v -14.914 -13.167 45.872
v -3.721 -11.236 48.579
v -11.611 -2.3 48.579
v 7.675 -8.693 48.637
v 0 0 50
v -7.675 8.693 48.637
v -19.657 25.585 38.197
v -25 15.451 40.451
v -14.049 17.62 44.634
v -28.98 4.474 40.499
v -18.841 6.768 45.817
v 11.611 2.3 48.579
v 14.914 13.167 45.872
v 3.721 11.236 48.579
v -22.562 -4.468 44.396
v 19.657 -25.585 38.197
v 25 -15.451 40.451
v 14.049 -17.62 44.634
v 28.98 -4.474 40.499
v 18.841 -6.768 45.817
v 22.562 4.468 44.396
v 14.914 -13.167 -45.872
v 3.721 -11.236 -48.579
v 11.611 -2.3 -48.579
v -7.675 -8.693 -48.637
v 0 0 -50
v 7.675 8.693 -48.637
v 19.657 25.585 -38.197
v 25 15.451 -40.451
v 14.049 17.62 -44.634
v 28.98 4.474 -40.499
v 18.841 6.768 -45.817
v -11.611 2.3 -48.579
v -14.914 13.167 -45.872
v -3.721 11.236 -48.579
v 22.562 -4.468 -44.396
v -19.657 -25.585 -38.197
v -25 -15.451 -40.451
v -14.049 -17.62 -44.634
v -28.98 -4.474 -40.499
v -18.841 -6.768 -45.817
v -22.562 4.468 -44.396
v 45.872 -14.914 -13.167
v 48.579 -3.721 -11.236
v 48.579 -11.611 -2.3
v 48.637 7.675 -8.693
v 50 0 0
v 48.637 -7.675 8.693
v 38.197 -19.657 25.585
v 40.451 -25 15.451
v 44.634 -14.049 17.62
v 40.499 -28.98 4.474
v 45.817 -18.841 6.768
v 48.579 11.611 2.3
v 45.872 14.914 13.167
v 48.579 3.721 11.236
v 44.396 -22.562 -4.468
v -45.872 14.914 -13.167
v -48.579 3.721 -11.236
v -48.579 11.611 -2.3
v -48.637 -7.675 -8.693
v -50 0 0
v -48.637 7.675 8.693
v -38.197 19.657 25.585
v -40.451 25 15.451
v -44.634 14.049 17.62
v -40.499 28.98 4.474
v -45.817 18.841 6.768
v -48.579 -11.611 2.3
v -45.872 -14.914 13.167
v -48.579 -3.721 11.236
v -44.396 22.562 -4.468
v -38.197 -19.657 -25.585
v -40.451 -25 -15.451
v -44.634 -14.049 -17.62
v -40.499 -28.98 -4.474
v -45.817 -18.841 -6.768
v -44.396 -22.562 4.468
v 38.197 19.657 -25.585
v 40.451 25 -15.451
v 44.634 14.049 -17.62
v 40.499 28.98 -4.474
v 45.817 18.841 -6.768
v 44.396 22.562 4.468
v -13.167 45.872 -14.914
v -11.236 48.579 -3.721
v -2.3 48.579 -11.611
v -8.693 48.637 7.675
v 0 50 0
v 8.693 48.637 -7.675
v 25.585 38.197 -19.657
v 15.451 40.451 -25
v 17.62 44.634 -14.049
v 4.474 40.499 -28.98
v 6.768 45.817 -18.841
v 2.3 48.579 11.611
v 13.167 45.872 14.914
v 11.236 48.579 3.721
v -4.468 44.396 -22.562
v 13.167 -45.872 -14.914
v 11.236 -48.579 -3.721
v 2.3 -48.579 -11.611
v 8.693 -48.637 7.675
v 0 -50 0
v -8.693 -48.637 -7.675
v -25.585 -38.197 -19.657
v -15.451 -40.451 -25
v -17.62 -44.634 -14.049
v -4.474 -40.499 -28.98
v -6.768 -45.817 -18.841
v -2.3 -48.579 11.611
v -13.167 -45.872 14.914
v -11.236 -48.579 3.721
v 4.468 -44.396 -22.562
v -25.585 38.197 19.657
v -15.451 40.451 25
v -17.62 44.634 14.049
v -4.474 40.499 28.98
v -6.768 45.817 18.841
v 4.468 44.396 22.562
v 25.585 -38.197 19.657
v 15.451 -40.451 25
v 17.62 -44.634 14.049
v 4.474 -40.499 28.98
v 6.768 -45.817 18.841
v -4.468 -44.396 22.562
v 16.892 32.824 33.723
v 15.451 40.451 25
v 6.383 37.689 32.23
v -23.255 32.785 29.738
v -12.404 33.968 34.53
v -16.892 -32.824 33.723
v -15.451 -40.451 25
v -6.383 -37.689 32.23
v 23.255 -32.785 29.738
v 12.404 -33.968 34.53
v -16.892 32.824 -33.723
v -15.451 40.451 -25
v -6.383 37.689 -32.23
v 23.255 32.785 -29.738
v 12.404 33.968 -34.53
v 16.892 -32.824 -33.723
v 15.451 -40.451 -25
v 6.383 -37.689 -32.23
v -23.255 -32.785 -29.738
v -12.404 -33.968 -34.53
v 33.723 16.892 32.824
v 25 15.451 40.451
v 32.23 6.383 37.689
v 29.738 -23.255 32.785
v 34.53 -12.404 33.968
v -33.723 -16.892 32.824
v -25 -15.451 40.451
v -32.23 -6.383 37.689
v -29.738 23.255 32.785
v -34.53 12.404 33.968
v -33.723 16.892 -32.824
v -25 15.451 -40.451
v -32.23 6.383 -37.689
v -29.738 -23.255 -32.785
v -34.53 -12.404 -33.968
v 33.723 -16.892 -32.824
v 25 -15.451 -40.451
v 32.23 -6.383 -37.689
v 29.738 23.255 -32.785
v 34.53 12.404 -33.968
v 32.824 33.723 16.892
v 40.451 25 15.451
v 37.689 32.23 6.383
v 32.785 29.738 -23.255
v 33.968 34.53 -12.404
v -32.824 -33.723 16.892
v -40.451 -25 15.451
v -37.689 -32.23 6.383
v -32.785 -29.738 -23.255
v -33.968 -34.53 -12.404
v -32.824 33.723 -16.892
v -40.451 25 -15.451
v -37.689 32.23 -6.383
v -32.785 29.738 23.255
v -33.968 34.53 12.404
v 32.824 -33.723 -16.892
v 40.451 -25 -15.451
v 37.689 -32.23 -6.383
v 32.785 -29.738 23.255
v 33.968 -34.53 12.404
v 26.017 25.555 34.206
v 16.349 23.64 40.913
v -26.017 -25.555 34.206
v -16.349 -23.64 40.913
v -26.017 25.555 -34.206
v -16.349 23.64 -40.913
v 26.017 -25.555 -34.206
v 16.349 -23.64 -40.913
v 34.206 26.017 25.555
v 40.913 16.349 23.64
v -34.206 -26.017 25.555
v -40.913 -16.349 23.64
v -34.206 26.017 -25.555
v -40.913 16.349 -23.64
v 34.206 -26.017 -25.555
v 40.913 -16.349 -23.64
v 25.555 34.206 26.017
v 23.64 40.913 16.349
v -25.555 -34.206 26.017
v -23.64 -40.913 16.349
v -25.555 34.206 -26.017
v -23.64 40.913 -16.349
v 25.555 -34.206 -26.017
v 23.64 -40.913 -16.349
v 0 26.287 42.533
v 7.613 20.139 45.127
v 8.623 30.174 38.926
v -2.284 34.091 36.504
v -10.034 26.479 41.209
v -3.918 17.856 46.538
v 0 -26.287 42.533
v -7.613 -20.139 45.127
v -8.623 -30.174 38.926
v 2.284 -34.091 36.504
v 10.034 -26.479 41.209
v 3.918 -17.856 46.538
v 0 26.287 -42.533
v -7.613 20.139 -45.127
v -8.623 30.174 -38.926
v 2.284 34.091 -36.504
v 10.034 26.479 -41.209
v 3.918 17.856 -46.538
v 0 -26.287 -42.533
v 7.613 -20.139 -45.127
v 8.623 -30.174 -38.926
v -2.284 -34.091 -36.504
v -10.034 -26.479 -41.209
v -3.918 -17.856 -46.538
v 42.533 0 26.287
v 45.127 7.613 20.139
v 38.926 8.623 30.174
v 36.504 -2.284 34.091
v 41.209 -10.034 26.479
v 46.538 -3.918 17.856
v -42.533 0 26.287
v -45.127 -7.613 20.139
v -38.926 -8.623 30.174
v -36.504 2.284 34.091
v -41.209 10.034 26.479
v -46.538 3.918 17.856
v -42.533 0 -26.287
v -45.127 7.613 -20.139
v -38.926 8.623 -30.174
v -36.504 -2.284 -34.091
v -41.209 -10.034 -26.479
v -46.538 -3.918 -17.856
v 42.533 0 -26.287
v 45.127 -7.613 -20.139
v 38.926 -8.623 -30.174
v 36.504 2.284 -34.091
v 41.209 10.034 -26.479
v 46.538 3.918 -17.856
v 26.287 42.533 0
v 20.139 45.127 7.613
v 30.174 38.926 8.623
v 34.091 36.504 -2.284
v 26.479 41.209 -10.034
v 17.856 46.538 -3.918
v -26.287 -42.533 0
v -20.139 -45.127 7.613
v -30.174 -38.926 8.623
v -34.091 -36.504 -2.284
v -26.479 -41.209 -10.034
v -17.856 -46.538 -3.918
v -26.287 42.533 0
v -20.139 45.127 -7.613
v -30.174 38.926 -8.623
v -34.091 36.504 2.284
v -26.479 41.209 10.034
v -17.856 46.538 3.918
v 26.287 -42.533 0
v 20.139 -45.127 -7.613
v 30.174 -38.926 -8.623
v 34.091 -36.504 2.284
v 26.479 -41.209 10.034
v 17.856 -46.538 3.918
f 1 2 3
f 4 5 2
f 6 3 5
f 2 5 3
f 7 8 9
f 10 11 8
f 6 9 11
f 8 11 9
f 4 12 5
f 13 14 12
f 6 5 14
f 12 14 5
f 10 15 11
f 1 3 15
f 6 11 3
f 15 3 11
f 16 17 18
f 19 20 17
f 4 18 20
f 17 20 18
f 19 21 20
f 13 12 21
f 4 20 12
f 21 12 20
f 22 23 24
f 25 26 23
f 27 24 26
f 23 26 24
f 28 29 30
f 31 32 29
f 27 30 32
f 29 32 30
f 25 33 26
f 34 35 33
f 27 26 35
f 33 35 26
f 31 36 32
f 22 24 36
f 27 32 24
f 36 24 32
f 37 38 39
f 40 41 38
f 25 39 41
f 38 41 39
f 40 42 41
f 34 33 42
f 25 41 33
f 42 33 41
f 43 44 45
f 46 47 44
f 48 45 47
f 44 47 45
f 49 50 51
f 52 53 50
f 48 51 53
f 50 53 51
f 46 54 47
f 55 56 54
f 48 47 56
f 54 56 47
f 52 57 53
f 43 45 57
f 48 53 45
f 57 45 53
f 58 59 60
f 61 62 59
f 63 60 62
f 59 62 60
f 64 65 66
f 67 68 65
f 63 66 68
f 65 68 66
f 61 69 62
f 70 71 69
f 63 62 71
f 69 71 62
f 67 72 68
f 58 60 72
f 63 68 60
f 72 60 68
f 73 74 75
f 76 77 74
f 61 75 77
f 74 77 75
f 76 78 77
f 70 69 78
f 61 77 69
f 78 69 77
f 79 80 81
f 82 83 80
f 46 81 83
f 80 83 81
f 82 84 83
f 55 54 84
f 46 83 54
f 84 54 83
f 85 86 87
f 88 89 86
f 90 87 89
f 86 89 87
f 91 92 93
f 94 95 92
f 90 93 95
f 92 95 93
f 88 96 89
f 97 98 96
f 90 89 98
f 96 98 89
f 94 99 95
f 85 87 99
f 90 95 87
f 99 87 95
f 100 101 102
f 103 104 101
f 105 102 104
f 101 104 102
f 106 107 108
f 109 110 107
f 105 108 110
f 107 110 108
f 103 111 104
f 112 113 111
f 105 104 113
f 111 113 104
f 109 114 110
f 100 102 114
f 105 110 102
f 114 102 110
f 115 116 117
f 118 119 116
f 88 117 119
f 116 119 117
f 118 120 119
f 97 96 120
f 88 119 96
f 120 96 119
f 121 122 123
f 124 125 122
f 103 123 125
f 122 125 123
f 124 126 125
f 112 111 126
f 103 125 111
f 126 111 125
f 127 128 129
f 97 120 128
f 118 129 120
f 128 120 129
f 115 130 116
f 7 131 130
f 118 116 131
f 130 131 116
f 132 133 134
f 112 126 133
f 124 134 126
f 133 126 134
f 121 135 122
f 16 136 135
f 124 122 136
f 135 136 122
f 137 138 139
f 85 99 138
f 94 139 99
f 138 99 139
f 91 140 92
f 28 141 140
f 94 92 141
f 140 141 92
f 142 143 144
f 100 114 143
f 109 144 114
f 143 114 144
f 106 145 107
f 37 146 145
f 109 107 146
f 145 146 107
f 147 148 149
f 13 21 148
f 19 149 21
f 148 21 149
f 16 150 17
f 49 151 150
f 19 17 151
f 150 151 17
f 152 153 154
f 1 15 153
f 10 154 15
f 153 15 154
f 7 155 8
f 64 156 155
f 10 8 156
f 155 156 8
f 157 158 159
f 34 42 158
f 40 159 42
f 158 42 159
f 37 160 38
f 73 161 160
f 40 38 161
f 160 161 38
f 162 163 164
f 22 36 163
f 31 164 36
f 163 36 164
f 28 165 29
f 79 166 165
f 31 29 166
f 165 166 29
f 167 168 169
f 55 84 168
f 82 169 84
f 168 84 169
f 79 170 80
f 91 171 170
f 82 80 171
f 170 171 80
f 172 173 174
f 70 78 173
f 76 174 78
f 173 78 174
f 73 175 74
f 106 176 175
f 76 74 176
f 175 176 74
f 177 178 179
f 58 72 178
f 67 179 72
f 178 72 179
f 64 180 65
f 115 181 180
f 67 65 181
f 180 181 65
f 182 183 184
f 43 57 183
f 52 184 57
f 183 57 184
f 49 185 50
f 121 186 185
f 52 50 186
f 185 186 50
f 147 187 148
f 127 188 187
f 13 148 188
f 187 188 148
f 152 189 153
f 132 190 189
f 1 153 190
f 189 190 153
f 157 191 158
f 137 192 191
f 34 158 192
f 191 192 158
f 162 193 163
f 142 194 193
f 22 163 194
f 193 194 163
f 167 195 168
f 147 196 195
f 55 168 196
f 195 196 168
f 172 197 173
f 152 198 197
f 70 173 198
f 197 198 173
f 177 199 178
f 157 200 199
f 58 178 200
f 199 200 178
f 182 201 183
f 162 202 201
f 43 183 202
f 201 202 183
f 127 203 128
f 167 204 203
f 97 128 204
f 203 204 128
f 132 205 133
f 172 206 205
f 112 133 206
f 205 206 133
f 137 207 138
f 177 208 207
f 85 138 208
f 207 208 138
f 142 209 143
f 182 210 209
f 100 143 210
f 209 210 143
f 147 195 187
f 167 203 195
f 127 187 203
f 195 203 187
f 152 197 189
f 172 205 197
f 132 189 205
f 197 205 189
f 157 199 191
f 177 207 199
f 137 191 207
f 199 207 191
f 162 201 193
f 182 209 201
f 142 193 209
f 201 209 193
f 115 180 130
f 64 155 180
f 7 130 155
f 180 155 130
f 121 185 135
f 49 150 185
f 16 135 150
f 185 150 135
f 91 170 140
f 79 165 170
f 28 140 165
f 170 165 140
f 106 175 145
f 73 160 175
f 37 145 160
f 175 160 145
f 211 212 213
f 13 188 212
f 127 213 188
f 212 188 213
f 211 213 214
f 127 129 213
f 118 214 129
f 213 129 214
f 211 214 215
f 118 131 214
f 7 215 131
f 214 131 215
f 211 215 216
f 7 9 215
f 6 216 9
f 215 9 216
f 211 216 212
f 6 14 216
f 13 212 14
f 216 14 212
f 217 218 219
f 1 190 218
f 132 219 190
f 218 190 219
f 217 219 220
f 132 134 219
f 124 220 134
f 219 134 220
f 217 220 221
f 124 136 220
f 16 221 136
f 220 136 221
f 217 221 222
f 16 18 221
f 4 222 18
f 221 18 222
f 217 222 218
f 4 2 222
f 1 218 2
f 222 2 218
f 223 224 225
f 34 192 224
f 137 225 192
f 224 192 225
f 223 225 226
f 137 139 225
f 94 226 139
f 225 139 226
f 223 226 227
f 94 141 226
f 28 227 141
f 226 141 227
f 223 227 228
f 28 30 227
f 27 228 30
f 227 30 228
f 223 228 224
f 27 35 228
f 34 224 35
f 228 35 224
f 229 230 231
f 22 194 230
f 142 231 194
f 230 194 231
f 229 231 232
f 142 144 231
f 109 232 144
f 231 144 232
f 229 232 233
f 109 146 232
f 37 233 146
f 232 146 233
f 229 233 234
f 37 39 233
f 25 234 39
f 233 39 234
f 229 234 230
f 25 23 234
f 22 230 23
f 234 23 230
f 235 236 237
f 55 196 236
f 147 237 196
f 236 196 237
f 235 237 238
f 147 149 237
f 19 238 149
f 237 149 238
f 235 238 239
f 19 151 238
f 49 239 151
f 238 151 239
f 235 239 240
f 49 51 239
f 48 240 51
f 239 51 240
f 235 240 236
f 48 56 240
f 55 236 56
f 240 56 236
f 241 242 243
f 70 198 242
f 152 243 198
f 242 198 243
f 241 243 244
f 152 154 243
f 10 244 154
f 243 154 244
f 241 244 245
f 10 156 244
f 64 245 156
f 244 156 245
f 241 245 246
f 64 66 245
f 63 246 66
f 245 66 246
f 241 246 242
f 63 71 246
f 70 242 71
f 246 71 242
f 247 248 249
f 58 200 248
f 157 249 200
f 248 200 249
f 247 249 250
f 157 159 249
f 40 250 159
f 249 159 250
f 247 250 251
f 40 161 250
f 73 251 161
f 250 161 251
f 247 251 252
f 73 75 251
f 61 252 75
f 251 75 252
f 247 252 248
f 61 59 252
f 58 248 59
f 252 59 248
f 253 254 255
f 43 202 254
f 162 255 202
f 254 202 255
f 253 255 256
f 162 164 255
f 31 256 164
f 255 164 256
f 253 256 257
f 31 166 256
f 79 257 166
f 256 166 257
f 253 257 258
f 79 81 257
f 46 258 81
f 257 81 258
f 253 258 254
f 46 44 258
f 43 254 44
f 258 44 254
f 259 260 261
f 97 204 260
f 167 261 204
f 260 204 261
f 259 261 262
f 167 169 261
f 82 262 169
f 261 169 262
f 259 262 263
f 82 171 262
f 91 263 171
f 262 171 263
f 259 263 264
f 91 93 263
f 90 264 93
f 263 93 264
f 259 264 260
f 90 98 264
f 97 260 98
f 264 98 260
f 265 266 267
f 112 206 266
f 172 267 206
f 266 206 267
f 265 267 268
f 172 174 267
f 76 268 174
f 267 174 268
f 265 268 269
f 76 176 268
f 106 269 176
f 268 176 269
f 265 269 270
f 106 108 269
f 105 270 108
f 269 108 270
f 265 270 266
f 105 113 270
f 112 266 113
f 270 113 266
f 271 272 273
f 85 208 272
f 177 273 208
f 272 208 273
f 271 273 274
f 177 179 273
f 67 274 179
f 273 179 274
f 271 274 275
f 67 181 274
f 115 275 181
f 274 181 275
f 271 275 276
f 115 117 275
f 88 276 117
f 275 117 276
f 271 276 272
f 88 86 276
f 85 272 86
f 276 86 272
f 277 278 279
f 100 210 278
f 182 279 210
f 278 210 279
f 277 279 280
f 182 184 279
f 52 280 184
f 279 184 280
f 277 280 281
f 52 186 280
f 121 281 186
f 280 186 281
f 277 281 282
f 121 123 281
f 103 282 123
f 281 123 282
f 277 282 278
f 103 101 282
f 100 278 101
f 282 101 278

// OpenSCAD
// Frequency-2 spherical pentakis snub dodecahedron
// 560 triangles on a sphere of radius 50.
// Generated by generate.py — regenerate rather than editing by hand.
//
// Construction:
//   1. snub dodecahedron
//   2. kis pentagons, apexes on circumsphere  (140 tris)
//   3. frequency-2 midpoint split + spherical projection  (560 tris)

geodesic();

module geodesic() {
  polyhedron(
    points = [
    [-7.67499971, 8.69318026, 48.63664253],
    [7.67499971, -8.69318026, 48.63664253],
    [7.67499971, 8.69318026, -48.63664253],
    [-7.67499971, -8.69318026, -48.63664253],
    [48.63664253, -7.67499971, 8.69318026],
    [-48.63664253, 7.67499971, 8.69318026],
    [-48.63664253, -7.67499971, -8.69318026],
    [48.63664253, 7.67499971, -8.69318026],
    [8.69318026, 48.63664253, -7.67499971],
    [-8.69318026, -48.63664253, -7.67499971],
    [-8.69318026, 48.63664253, 7.67499971],
    [8.69318026, -48.63664253, 7.67499971],
    [-4.47375376, 40.49902978, 28.97954648],
    [4.47375376, -40.49902978, 28.97954648],
    [4.47375376, 40.49902978, -28.97954648],
    [-4.47375376, -40.49902978, -28.97954648],
    [28.97954648, -4.47375376, 40.49902978],
    [-28.97954648, 4.47375376, 40.49902978],
    [-28.97954648, -4.47375376, -40.49902978],
    [28.97954648, 4.47375376, -40.49902978],
    [40.49902978, 28.97954648, -4.47375376],
    [-40.49902978, -28.97954648, -4.47375376],
    [-40.49902978, 28.97954648, 4.47375376],
    [40.49902978, -28.97954648, 4.47375376],
    [14.91368536, 13.16693402, 45.87171065],
    [-14.91368536, -13.16693402, 45.87171065],
    [-14.91368536, 13.16693402, -45.87171065],
    [14.91368536, -13.16693402, -45.87171065],
    [45.87171065, 14.91368536, 13.16693402],
    [-45.87171065, -14.91368536, 13.16693402],
    [-45.87171065, 14.91368536, -13.16693402],
    [45.87171065, -14.91368536, -13.16693402],
    [13.16693402, 45.87171065, 14.91368536],
    [-13.16693402, -45.87171065, 14.91368536],
    [-13.16693402, 45.87171065, -14.91368536],
    [13.16693402, -45.87171065, -14.91368536],
    [16.89216416, 32.82403006, 33.72295717],
    [-16.89216416, -32.82403006, 33.72295717],
    [-16.89216416, 32.82403006, -33.72295717],
    [16.89216416, -32.82403006, -33.72295717],
    [33.72295717, 16.89216416, 32.82403006],
    [-33.72295717, -16.89216416, 32.82403006],
    [-33.72295717, 16.89216416, -32.82403006],
    [33.72295717, -16.89216416, -32.82403006],
    [32.82403006, 33.72295717, 16.89216416],
    [-32.82403006, -33.72295717, 16.89216416],
    [-32.82403006, 33.72295717, -16.89216416],
    [32.82403006, -33.72295717, -16.89216416],
    [-19.65709604, 25.58534442, 38.19671093],
    [19.65709604, -25.58534442, 38.19671093],
    [19.65709604, 25.58534442, -38.19671093],
    [-19.65709604, -25.58534442, -38.19671093],
    [38.19671093, -19.65709604, 25.58534442],
    [-38.19671093, 19.65709604, 25.58534442],
    [-38.19671093, -19.65709604, -25.58534442],
    [38.19671093, 19.65709604, -25.58534442],
    [25.58534442, 38.19671093, -19.65709604],
    [-25.58534442, -38.19671093, -19.65709604],
    [-25.58534442, 38.19671093, 19.65709604],
    [25.58534442, -38.19671093, 19.65709604],
    [0.00000000, 26.28655561, 42.53254042],
    [-0.00000000, -26.28655561, 42.53254042],
    [-0.00000000, 26.28655561, -42.53254042],
    [0.00000000, -26.28655561, -42.53254042],
    [42.53254042, 0.00000000, 26.28655561],
    [-42.53254042, -0.00000000, 26.28655561],
    [-42.53254042, 0.00000000, -26.28655561],
    [42.53254042, -0.00000000, -26.28655561],
    [26.28655561, 42.53254042, 0.00000000],
    [-26.28655561, -42.53254042, 0.00000000],
    [-26.28655561, 42.53254042, -0.00000000],
    [26.28655561, -42.53254042, -0.00000000],
    [-3.72079839, -11.23644291, 48.57878148],
    [0.00000000, 0.00000000, 50.00000000],
    [-11.61093977, -2.29957987, 48.57878148],
    [-25.00000000, 15.45084972, 40.45084972],
    [-18.84101384, 6.76801139, 45.81713893],
    [-14.04912754, 17.61970137, 44.63371079],
    [11.61093977, 2.29957987, 48.57878148],
    [3.72079839, 11.23644291, 48.57878148],
    [-22.56181223, -4.46843152, 44.39592041],
    [25.00000000, -15.45084972, 40.45084972],
    [18.84101384, -6.76801139, 45.81713893],
    [14.04912754, -17.61970137, 44.63371079],
    [22.56181223, 4.46843152, 44.39592041],
    [3.72079839, -11.23644291, -48.57878148],
    [0.00000000, 0.00000000, -50.00000000],
    [11.61093977, -2.29957987, -48.57878148],
    [25.00000000, 15.45084972, -40.45084972],
    [18.84101384, 6.76801139, -45.81713893],
    [14.04912754, 17.61970137, -44.63371079],
    [-11.61093977, 2.29957987, -48.57878148],
    [-3.72079839, 11.23644291, -48.57878148],
    [22.56181223, -4.46843152, -44.39592041],
    [-25.00000000, -15.45084972, -40.45084972],
    [-18.84101384, -6.76801139, -45.81713893],
    [-14.04912754, -17.61970137, -44.63371079],
    [-22.56181223, 4.46843152, -44.39592041],
    [48.57878148, -3.72079839, -11.23644291],
    [50.00000000, 0.00000000, 0.00000000],
    [48.57878148, -11.61093977, -2.29957987],
    [40.45084972, -25.00000000, 15.45084972],
    [45.81713893, -18.84101384, 6.76801139],
    [44.63371079, -14.04912754, 17.61970137],
    [48.57878148, 11.61093977, 2.29957987],
    [48.57878148, 3.72079839, 11.23644291],
    [44.39592041, -22.56181223, -4.46843152],
    [-48.57878148, 3.72079839, -11.23644291],
    [-50.00000000, 0.00000000, 0.00000000],
    [-48.57878148, 11.61093977, -2.29957987],
    [-40.45084972, 25.00000000, 15.45084972],
    [-45.81713893, 18.84101384, 6.76801139],
    [-44.63371079, 14.04912754, 17.61970137],
    [-48.57878148, -11.61093977, 2.29957987],
    [-48.57878148, -3.72079839, 11.23644291],
    [-44.39592041, 22.56181223, -4.46843152],
    [-40.45084972, -25.00000000, -15.45084972],
    [-45.81713893, -18.84101384, -6.76801139],
    [-44.63371079, -14.04912754, -17.61970137],
    [-44.39592041, -22.56181223, 4.46843152],
    [40.45084972, 25.00000000, -15.45084972],
    [45.81713893, 18.84101384, -6.76801139],
    [44.63371079, 14.04912754, -17.61970137],
    [44.39592041, 22.56181223, 4.46843152],
    [-11.23644291, 48.57878148, -3.72079839],
    [0.00000000, 50.00000000, 0.00000000],
    [-2.29957987, 48.57878148, -11.61093977],
    [15.45084972, 40.45084972, -25.00000000],
    [6.76801139, 45.81713893, -18.84101384],
    [17.61970137, 44.63371079, -14.04912754],
    [2.29957987, 48.57878148, 11.61093977],
    [11.23644291, 48.57878148, 3.72079839],
    [-4.46843152, 44.39592041, -22.56181223],
    [11.23644291, -48.57878148, -3.72079839],
    [0.00000000, -50.00000000, 0.00000000],
    [2.29957987, -48.57878148, -11.61093977],
    [-15.45084972, -40.45084972, -25.00000000],
    [-6.76801139, -45.81713893, -18.84101384],
    [-17.61970137, -44.63371079, -14.04912754],
    [-2.29957987, -48.57878148, 11.61093977],
    [-11.23644291, -48.57878148, 3.72079839],
    [4.46843152, -44.39592041, -22.56181223],
    [-15.45084972, 40.45084972, 25.00000000],
    [-6.76801139, 45.81713893, 18.84101384],
    [-17.61970137, 44.63371079, 14.04912754],
    [4.46843152, 44.39592041, 22.56181223],
    [15.45084972, -40.45084972, 25.00000000],
    [6.76801139, -45.81713893, 18.84101384],
    [17.61970137, -44.63371079, 14.04912754],
    [-4.46843152, -44.39592041, 22.56181223],
    [15.45084972, 40.45084972, 25.00000000],
    [6.38325846, 37.68920716, 32.23007407],
    [-23.25532670, 32.78498064, 29.73776764],
    [-12.40363672, 33.96840878, 34.52965394],
    [-15.45084972, -40.45084972, 25.00000000],
    [-6.38325846, -37.68920716, 32.23007407],
    [23.25532670, -32.78498064, 29.73776764],
    [12.40363672, -33.96840878, 34.52965394],
    [-15.45084972, 40.45084972, -25.00000000],
    [-6.38325846, 37.68920716, -32.23007407],
    [23.25532670, 32.78498064, -29.73776764],
    [12.40363672, 33.96840878, -34.52965394],
    [15.45084972, -40.45084972, -25.00000000],
    [6.38325846, -37.68920716, -32.23007407],
    [-23.25532670, -32.78498064, -29.73776764],
    [-12.40363672, -33.96840878, -34.52965394],
    [25.00000000, 15.45084972, 40.45084972],
    [32.23007407, 6.38325846, 37.68920716],
    [29.73776764, -23.25532670, 32.78498064],
    [34.52965394, -12.40363672, 33.96840878],
    [-25.00000000, -15.45084972, 40.45084972],
    [-32.23007407, -6.38325846, 37.68920716],
    [-29.73776764, 23.25532670, 32.78498064],
    [-34.52965394, 12.40363672, 33.96840878],
    [-25.00000000, 15.45084972, -40.45084972],
    [-32.23007407, 6.38325846, -37.68920716],
    [-29.73776764, -23.25532670, -32.78498064],
    [-34.52965394, -12.40363672, -33.96840878],
    [25.00000000, -15.45084972, -40.45084972],
    [32.23007407, -6.38325846, -37.68920716],
    [29.73776764, 23.25532670, -32.78498064],
    [34.52965394, 12.40363672, -33.96840878],
    [40.45084972, 25.00000000, 15.45084972],
    [37.68920716, 32.23007407, 6.38325846],
    [32.78498064, 29.73776764, -23.25532670],
    [33.96840878, 34.52965394, -12.40363672],
    [-40.45084972, -25.00000000, 15.45084972],
    [-37.68920716, -32.23007407, 6.38325846],
    [-32.78498064, -29.73776764, -23.25532670],
    [-33.96840878, -34.52965394, -12.40363672],
    [-40.45084972, 25.00000000, -15.45084972],
    [-37.68920716, 32.23007407, -6.38325846],
    [-32.78498064, 29.73776764, 23.25532670],
    [-33.96840878, 34.52965394, 12.40363672],
    [40.45084972, -25.00000000, -15.45084972],
    [37.68920716, -32.23007407, -6.38325846],
    [32.78498064, -29.73776764, 23.25532670],
    [33.96840878, -34.52965394, 12.40363672],
    [26.01696925, 25.55490657, 34.20619916],
    [16.34870741, 23.64007962, 40.91291240],
    [-26.01696925, -25.55490657, 34.20619916],
    [-16.34870741, -23.64007962, 40.91291240],
    [-26.01696925, 25.55490657, -34.20619916],
    [-16.34870741, 23.64007962, -40.91291240],
    [26.01696925, -25.55490657, -34.20619916],
    [16.34870741, -23.64007962, -40.91291240],
    [34.20619916, 26.01696925, 25.55490657],
    [40.91291240, 16.34870741, 23.64007962],
    [-34.20619916, -26.01696925, 25.55490657],
    [-40.91291240, -16.34870741, 23.64007962],
    [-34.20619916, 26.01696925, -25.55490657],
    [-40.91291240, 16.34870741, -23.64007962],
    [34.20619916, -26.01696925, -25.55490657],
    [40.91291240, -16.34870741, -23.64007962],
    [25.55490657, 34.20619916, 26.01696925],
    [23.64007962, 40.91291240, 16.34870741],
    [-25.55490657, -34.20619916, 26.01696925],
    [-23.64007962, -40.91291240, 16.34870741],
    [-25.55490657, 34.20619916, -26.01696925],
    [-23.64007962, 40.91291240, -16.34870741],
    [25.55490657, -34.20619916, -26.01696925],
    [23.64007962, -40.91291240, -16.34870741],
    [7.61286564, 20.13949659, 45.12698698],
    [8.62280335, 30.17369185, 38.92551326],
    [-2.28368009, 34.09148549, 36.50418363],
    [-10.03419526, 26.47861985, 41.20919335],
    [-3.91779364, 17.85581650, 46.53837889],
    [-7.61286564, -20.13949659, 45.12698698],
    [-8.62280335, -30.17369185, 38.92551326],
    [2.28368009, -34.09148549, 36.50418363],
    [10.03419526, -26.47861985, 41.20919335],
    [3.91779364, -17.85581650, 46.53837889],
    [-7.61286564, 20.13949659, -45.12698698],
    [-8.62280335, 30.17369185, -38.92551326],
    [2.28368009, 34.09148549, -36.50418363],
    [10.03419526, 26.47861985, -41.20919335],
    [3.91779364, 17.85581650, -46.53837889],
    [7.61286564, -20.13949659, -45.12698698],
    [8.62280335, -30.17369185, -38.92551326],
    [-2.28368009, -34.09148549, -36.50418363],
    [-10.03419526, -26.47861985, -41.20919335],
    [-3.91779364, -17.85581650, -46.53837889],
    [45.12698698, 7.61286564, 20.13949659],
    [38.92551326, 8.62280335, 30.17369185],
    [36.50418363, -2.28368009, 34.09148549],
    [41.20919335, -10.03419526, 26.47861985],
    [46.53837889, -3.91779364, 17.85581650],
    [-45.12698698, -7.61286564, 20.13949659],
    [-38.92551326, -8.62280335, 30.17369185],
    [-36.50418363, 2.28368009, 34.09148549],
    [-41.20919335, 10.03419526, 26.47861985],
    [-46.53837889, 3.91779364, 17.85581650],
    [-45.12698698, 7.61286564, -20.13949659],
    [-38.92551326, 8.62280335, -30.17369185],
    [-36.50418363, -2.28368009, -34.09148549],
    [-41.20919335, -10.03419526, -26.47861985],
    [-46.53837889, -3.91779364, -17.85581650],
    [45.12698698, -7.61286564, -20.13949659],
    [38.92551326, -8.62280335, -30.17369185],
    [36.50418363, 2.28368009, -34.09148549],
    [41.20919335, 10.03419526, -26.47861985],
    [46.53837889, 3.91779364, -17.85581650],
    [20.13949659, 45.12698698, 7.61286564],
    [30.17369185, 38.92551326, 8.62280335],
    [34.09148549, 36.50418363, -2.28368009],
    [26.47861985, 41.20919335, -10.03419526],
    [17.85581650, 46.53837889, -3.91779364],
    [-20.13949659, -45.12698698, 7.61286564],
    [-30.17369185, -38.92551326, 8.62280335],
    [-34.09148549, -36.50418363, -2.28368009],
    [-26.47861985, -41.20919335, -10.03419526],
    [-17.85581650, -46.53837889, -3.91779364],
    [-20.13949659, 45.12698698, -7.61286564],
    [-30.17369185, 38.92551326, -8.62280335],
    [-34.09148549, 36.50418363, 2.28368009],
    [-26.47861985, 41.20919335, 10.03419526],
    [-17.85581650, 46.53837889, 3.91779364],
    [20.13949659, -45.12698698, -7.61286564],
    [30.17369185, -38.92551326, -8.62280335],
    [34.09148549, -36.50418363, 2.28368009],
    [26.47861985, -41.20919335, 10.03419526],
    [17.85581650, -46.53837889, 3.91779364]
    ],
    faces = [
    [25, 72, 74],
    [1, 73, 72],
    [0, 74, 73],
    [72, 73, 74],
    [48, 75, 77],
    [17, 76, 75],
    [0, 77, 76],
    [75, 76, 77],
    [1, 78, 73],
    [24, 79, 78],
    [0, 73, 79],
    [78, 79, 73],
    [17, 80, 76],
    [25, 74, 80],
    [0, 76, 74],
    [80, 74, 76],
    [49, 81, 83],
    [16, 82, 81],
    [1, 83, 82],
    [81, 82, 83],
    [16, 84, 82],
    [24, 78, 84],
    [1, 82, 78],
    [84, 78, 82],
    [27, 85, 87],
    [3, 86, 85],
    [2, 87, 86],
    [85, 86, 87],
    [50, 88, 90],
    [19, 89, 88],
    [2, 90, 89],
    [88, 89, 90],
    [3, 91, 86],
    [26, 92, 91],
    [2, 86, 92],
    [91, 92, 86],
    [19, 93, 89],
    [27, 87, 93],
    [2, 89, 87],
    [93, 87, 89],
    [51, 94, 96],
    [18, 95, 94],
    [3, 96, 95],
    [94, 95, 96],
    [18, 97, 95],
    [26, 91, 97],
    [3, 95, 91],
    [97, 91, 95],
    [31, 98, 100],
    [7, 99, 98],
    [4, 100, 99],
    [98, 99, 100],
    [52, 101, 103],
    [23, 102, 101],
    [4, 103, 102],
    [101, 102, 103],
    [7, 104, 99],
    [28, 105, 104],
    [4, 99, 105],
    [104, 105, 99],
    [23, 106, 102],
    [31, 100, 106],
    [4, 102, 100],
    [106, 100, 102],
    [30, 107, 109],
    [6, 108, 107],
    [5, 109, 108],
    [107, 108, 109],
    [53, 110, 112],
    [22, 111, 110],
    [5, 112, 111],
    [110, 111, 112],
    [6, 113, 108],
    [29, 114, 113],
    [5, 108, 114],
    [113, 114, 108],
    [22, 115, 111],
    [30, 109, 115],
    [5, 111, 109],
    [115, 109, 111],
    [54, 116, 118],
    [21, 117, 116],
    [6, 118, 117],
    [116, 117, 118],
    [21, 119, 117],
    [29, 113, 119],
    [6, 117, 113],
    [119, 113, 117],
    [55, 120, 122],
    [20, 121, 120],
    [7, 122, 121],
    [120, 121, 122],
    [20, 123, 121],
    [28, 104, 123],
    [7, 121, 104],
    [123, 104, 121],
    [34, 124, 126],
    [10, 125, 124],
    [8, 126, 125],
    [124, 125, 126],
    [56, 127, 129],
    [14, 128, 127],
    [8, 129, 128],
    [127, 128, 129],
    [10, 130, 125],
    [32, 131, 130],
    [8, 125, 131],
    [130, 131, 125],
    [14, 132, 128],
    [34, 126, 132],
    [8, 128, 126],
    [132, 126, 128],
    [35, 133, 135],
    [11, 134, 133],
    [9, 135, 134],
    [133, 134, 135],
    [57, 136, 138],
    [15, 137, 136],
    [9, 138, 137],
    [136, 137, 138],
    [11, 139, 134],
    [33, 140, 139],
    [9, 134, 140],
    [139, 140, 134],
    [15, 141, 137],
    [35, 135, 141],
    [9, 137, 135],
    [141, 135, 137],
    [58, 142, 144],
    [12, 143, 142],
    [10, 144, 143],
    [142, 143, 144],
    [12, 145, 143],
    [32, 130, 145],
    [10, 143, 130],
    [145, 130, 143],
    [59, 146, 148],
    [13, 147, 146],
    [11, 148, 147],
    [146, 147, 148],
    [13, 149, 147],
    [33, 139, 149],
    [11, 147, 139],
    [149, 139, 147],
    [36, 150, 151],
    [32, 145, 150],
    [12, 151, 145],
    [150, 145, 151],
    [58, 152, 142],
    [48, 153, 152],
    [12, 142, 153],
    [152, 153, 142],
    [37, 154, 155],
    [33, 149, 154],
    [13, 155, 149],
    [154, 149, 155],
    [59, 156, 146],
    [49, 157, 156],
    [13, 146, 157],
    [156, 157, 146],
    [38, 158, 159],
    [34, 132, 158],
    [14, 159, 132],
    [158, 132, 159],
    [56, 160, 127],
    [50, 161, 160],
    [14, 127, 161],
    [160, 161, 127],
    [39, 162, 163],
    [35, 141, 162],
    [15, 163, 141],
    [162, 141, 163],
    [57, 164, 136],
    [51, 165, 164],
    [15, 136, 165],
    [164, 165, 136],
    [40, 166, 167],
    [24, 84, 166],
    [16, 167, 84],
    [166, 84, 167],
    [49, 168, 81],
    [52, 169, 168],
    [16, 81, 169],
    [168, 169, 81],
    [41, 170, 171],
    [25, 80, 170],
    [17, 171, 80],
    [170, 80, 171],
    [48, 172, 75],
    [53, 173, 172],
    [17, 75, 173],
    [172, 173, 75],
    [42, 174, 175],
    [26, 97, 174],
    [18, 175, 97],
    [174, 97, 175],
    [51, 176, 94],
    [54, 177, 176],
    [18, 94, 177],
    [176, 177, 94],
    [43, 178, 179],
    [27, 93, 178],
    [19, 179, 93],
    [178, 93, 179],
    [50, 180, 88],
    [55, 181, 180],
    [19, 88, 181],
    [180, 181, 88],
    [44, 182, 183],
    [28, 123, 182],
    [20, 183, 123],
    [182, 123, 183],
    [55, 184, 120],
    [56, 185, 184],
    [20, 120, 185],
    [184, 185, 120],
    [45, 186, 187],
    [29, 119, 186],
    [21, 187, 119],
    [186, 119, 187],
    [54, 188, 116],
    [57, 189, 188],
    [21, 116, 189],
    [188, 189, 116],
    [46, 190, 191],
    [30, 115, 190],
    [22, 191, 115],
    [190, 115, 191],
    [53, 192, 110],
    [58, 193, 192],
    [22, 110, 193],
    [192, 193, 110],
    [47, 194, 195],
    [31, 106, 194],
    [23, 195, 106],
    [194, 106, 195],
    [52, 196, 101],
    [59, 197, 196],
    [23, 101, 197],
    [196, 197, 101],
    [40, 198, 166],
    [36, 199, 198],
    [24, 166, 199],
    [198, 199, 166],
    [41, 200, 170],
    [37, 201, 200],
    [25, 170, 201],
    [200, 201, 170],
    [42, 202, 174],
    [38, 203, 202],
    [26, 174, 203],
    [202, 203, 174],
    [43, 204, 178],
    [39, 205, 204],
    [27, 178, 205],
    [204, 205, 178],
    [44, 206, 182],
    [40, 207, 206],
    [28, 182, 207],
    [206, 207, 182],
    [45, 208, 186],
    [41, 209, 208],
    [29, 186, 209],
    [208, 209, 186],
    [46, 210, 190],
    [42, 211, 210],
    [30, 190, 211],
    [210, 211, 190],
    [47, 212, 194],
    [43, 213, 212],
    [31, 194, 213],
    [212, 213, 194],
    [36, 214, 150],
    [44, 215, 214],
    [32, 150, 215],
    [214, 215, 150],
    [37, 216, 154],
    [45, 217, 216],
    [33, 154, 217],
    [216, 217, 154],
    [38, 218, 158],
    [46, 219, 218],
    [34, 158, 219],
    [218, 219, 158],
    [39, 220, 162],
    [47, 221, 220],
    [35, 162, 221],
    [220, 221, 162],
    [40, 206, 198],
    [44, 214, 206],
    [36, 198, 214],
    [206, 214, 198],
    [41, 208, 200],
    [45, 216, 208],
    [37, 200, 216],
    [208, 216, 200],
    [42, 210, 202],
    [46, 218, 210],
    [38, 202, 218],
    [210, 218, 202],
    [43, 212, 204],
    [47, 220, 212],
    [39, 204, 220],
    [212, 220, 204],
    [58, 192, 152],
    [53, 172, 192],
    [48, 152, 172],
    [192, 172, 152],
    [59, 196, 156],
    [52, 168, 196],
    [49, 156, 168],
    [196, 168, 156],
    [56, 184, 160],
    [55, 180, 184],
    [50, 160, 180],
    [184, 180, 160],
    [57, 188, 164],
    [54, 176, 188],
    [51, 164, 176],
    [188, 176, 164],
    [60, 222, 223],
    [24, 199, 222],
    [36, 223, 199],
    [222, 199, 223],
    [60, 223, 224],
    [36, 151, 223],
    [12, 224, 151],
    [223, 151, 224],
    [60, 224, 225],
    [12, 153, 224],
    [48, 225, 153],
    [224, 153, 225],
    [60, 225, 226],
    [48, 77, 225],
    [0, 226, 77],
    [225, 77, 226],
    [60, 226, 222],
    [0, 79, 226],
    [24, 222, 79],
    [226, 79, 222],
    [61, 227, 228],
    [25, 201, 227],
    [37, 228, 201],
    [227, 201, 228],
    [61, 228, 229],
    [37, 155, 228],
    [13, 229, 155],
    [228, 155, 229],
    [61, 229, 230],
    [13, 157, 229],
    [49, 230, 157],
    [229, 157, 230],
    [61, 230, 231],
    [49, 83, 230],
    [1, 231, 83],
    [230, 83, 231],
    [61, 231, 227],
    [1, 72, 231],
    [25, 227, 72],
    [231, 72, 227],
    [62, 232, 233],
    [26, 203, 232],
    [38, 233, 203],
    [232, 203, 233],
    [62, 233, 234],
    [38, 159, 233],
    [14, 234, 159],
    [233, 159, 234],
    [62, 234, 235],
    [14, 161, 234],
    [50, 235, 161],
    [234, 161, 235],
    [62, 235, 236],
    [50, 90, 235],
    [2, 236, 90],
    [235, 90, 236],
    [62, 236, 232],
    [2, 92, 236],
    [26, 232, 92],
    [236, 92, 232],
    [63, 237, 238],
    [27, 205, 237],
    [39, 238, 205],
    [237, 205, 238],
    [63, 238, 239],
    [39, 163, 238],
    [15, 239, 163],
    [238, 163, 239],
    [63, 239, 240],
    [15, 165, 239],
    [51, 240, 165],
    [239, 165, 240],
    [63, 240, 241],
    [51, 96, 240],
    [3, 241, 96],
    [240, 96, 241],
    [63, 241, 237],
    [3, 85, 241],
    [27, 237, 85],
    [241, 85, 237],
    [64, 242, 243],
    [28, 207, 242],
    [40, 243, 207],
    [242, 207, 243],
    [64, 243, 244],
    [40, 167, 243],
    [16, 244, 167],
    [243, 167, 244],
    [64, 244, 245],
    [16, 169, 244],
    [52, 245, 169],
    [244, 169, 245],
    [64, 245, 246],
    [52, 103, 245],
    [4, 246, 103],
    [245, 103, 246],
    [64, 246, 242],
    [4, 105, 246],
    [28, 242, 105],
    [246, 105, 242],
    [65, 247, 248],
    [29, 209, 247],
    [41, 248, 209],
    [247, 209, 248],
    [65, 248, 249],
    [41, 171, 248],
    [17, 249, 171],
    [248, 171, 249],
    [65, 249, 250],
    [17, 173, 249],
    [53, 250, 173],
    [249, 173, 250],
    [65, 250, 251],
    [53, 112, 250],
    [5, 251, 112],
    [250, 112, 251],
    [65, 251, 247],
    [5, 114, 251],
    [29, 247, 114],
    [251, 114, 247],
    [66, 252, 253],
    [30, 211, 252],
    [42, 253, 211],
    [252, 211, 253],
    [66, 253, 254],
    [42, 175, 253],
    [18, 254, 175],
    [253, 175, 254],
    [66, 254, 255],
    [18, 177, 254],
    [54, 255, 177],
    [254, 177, 255],
    [66, 255, 256],
    [54, 118, 255],
    [6, 256, 118],
    [255, 118, 256],
    [66, 256, 252],
    [6, 107, 256],
    [30, 252, 107],
    [256, 107, 252],
    [67, 257, 258],
    [31, 213, 257],
    [43, 258, 213],
    [257, 213, 258],
    [67, 258, 259],
    [43, 179, 258],
    [19, 259, 179],
    [258, 179, 259],
    [67, 259, 260],
    [19, 181, 259],
    [55, 260, 181],
    [259, 181, 260],
    [67, 260, 261],
    [55, 122, 260],
    [7, 261, 122],
    [260, 122, 261],
    [67, 261, 257],
    [7, 98, 261],
    [31, 257, 98],
    [261, 98, 257],
    [68, 262, 263],
    [32, 215, 262],
    [44, 263, 215],
    [262, 215, 263],
    [68, 263, 264],
    [44, 183, 263],
    [20, 264, 183],
    [263, 183, 264],
    [68, 264, 265],
    [20, 185, 264],
    [56, 265, 185],
    [264, 185, 265],
    [68, 265, 266],
    [56, 129, 265],
    [8, 266, 129],
    [265, 129, 266],
    [68, 266, 262],
    [8, 131, 266],
    [32, 262, 131],
    [266, 131, 262],
    [69, 267, 268],
    [33, 217, 267],
    [45, 268, 217],
    [267, 217, 268],
    [69, 268, 269],
    [45, 187, 268],
    [21, 269, 187],
    [268, 187, 269],
    [69, 269, 270],
    [21, 189, 269],
    [57, 270, 189],
    [269, 189, 270],
    [69, 270, 271],
    [57, 138, 270],
    [9, 271, 138],
    [270, 138, 271],
    [69, 271, 267],
    [9, 140, 271],
    [33, 267, 140],
    [271, 140, 267],
    [70, 272, 273],
    [34, 219, 272],
    [46, 273, 219],
    [272, 219, 273],
    [70, 273, 274],
    [46, 191, 273],
    [22, 274, 191],
    [273, 191, 274],
    [70, 274, 275],
    [22, 193, 274],
    [58, 275, 193],
    [274, 193, 275],
    [70, 275, 276],
    [58, 144, 275],
    [10, 276, 144],
    [275, 144, 276],
    [70, 276, 272],
    [10, 124, 276],
    [34, 272, 124],
    [276, 124, 272],
    [71, 277, 278],
    [35, 221, 277],
    [47, 278, 221],
    [277, 221, 278],
    [71, 278, 279],
    [47, 195, 278],
    [23, 279, 195],
    [278, 195, 279],
    [71, 279, 280],
    [23, 197, 279],
    [59, 280, 197],
    [279, 197, 280],
    [71, 280, 281],
    [59, 148, 280],
    [11, 281, 148],
    [280, 148, 281],
    [71, 281, 277],
    [11, 133, 281],
    [35, 277, 133],
    [281, 133, 277]
    ],
    convexity = 10
  );
}
